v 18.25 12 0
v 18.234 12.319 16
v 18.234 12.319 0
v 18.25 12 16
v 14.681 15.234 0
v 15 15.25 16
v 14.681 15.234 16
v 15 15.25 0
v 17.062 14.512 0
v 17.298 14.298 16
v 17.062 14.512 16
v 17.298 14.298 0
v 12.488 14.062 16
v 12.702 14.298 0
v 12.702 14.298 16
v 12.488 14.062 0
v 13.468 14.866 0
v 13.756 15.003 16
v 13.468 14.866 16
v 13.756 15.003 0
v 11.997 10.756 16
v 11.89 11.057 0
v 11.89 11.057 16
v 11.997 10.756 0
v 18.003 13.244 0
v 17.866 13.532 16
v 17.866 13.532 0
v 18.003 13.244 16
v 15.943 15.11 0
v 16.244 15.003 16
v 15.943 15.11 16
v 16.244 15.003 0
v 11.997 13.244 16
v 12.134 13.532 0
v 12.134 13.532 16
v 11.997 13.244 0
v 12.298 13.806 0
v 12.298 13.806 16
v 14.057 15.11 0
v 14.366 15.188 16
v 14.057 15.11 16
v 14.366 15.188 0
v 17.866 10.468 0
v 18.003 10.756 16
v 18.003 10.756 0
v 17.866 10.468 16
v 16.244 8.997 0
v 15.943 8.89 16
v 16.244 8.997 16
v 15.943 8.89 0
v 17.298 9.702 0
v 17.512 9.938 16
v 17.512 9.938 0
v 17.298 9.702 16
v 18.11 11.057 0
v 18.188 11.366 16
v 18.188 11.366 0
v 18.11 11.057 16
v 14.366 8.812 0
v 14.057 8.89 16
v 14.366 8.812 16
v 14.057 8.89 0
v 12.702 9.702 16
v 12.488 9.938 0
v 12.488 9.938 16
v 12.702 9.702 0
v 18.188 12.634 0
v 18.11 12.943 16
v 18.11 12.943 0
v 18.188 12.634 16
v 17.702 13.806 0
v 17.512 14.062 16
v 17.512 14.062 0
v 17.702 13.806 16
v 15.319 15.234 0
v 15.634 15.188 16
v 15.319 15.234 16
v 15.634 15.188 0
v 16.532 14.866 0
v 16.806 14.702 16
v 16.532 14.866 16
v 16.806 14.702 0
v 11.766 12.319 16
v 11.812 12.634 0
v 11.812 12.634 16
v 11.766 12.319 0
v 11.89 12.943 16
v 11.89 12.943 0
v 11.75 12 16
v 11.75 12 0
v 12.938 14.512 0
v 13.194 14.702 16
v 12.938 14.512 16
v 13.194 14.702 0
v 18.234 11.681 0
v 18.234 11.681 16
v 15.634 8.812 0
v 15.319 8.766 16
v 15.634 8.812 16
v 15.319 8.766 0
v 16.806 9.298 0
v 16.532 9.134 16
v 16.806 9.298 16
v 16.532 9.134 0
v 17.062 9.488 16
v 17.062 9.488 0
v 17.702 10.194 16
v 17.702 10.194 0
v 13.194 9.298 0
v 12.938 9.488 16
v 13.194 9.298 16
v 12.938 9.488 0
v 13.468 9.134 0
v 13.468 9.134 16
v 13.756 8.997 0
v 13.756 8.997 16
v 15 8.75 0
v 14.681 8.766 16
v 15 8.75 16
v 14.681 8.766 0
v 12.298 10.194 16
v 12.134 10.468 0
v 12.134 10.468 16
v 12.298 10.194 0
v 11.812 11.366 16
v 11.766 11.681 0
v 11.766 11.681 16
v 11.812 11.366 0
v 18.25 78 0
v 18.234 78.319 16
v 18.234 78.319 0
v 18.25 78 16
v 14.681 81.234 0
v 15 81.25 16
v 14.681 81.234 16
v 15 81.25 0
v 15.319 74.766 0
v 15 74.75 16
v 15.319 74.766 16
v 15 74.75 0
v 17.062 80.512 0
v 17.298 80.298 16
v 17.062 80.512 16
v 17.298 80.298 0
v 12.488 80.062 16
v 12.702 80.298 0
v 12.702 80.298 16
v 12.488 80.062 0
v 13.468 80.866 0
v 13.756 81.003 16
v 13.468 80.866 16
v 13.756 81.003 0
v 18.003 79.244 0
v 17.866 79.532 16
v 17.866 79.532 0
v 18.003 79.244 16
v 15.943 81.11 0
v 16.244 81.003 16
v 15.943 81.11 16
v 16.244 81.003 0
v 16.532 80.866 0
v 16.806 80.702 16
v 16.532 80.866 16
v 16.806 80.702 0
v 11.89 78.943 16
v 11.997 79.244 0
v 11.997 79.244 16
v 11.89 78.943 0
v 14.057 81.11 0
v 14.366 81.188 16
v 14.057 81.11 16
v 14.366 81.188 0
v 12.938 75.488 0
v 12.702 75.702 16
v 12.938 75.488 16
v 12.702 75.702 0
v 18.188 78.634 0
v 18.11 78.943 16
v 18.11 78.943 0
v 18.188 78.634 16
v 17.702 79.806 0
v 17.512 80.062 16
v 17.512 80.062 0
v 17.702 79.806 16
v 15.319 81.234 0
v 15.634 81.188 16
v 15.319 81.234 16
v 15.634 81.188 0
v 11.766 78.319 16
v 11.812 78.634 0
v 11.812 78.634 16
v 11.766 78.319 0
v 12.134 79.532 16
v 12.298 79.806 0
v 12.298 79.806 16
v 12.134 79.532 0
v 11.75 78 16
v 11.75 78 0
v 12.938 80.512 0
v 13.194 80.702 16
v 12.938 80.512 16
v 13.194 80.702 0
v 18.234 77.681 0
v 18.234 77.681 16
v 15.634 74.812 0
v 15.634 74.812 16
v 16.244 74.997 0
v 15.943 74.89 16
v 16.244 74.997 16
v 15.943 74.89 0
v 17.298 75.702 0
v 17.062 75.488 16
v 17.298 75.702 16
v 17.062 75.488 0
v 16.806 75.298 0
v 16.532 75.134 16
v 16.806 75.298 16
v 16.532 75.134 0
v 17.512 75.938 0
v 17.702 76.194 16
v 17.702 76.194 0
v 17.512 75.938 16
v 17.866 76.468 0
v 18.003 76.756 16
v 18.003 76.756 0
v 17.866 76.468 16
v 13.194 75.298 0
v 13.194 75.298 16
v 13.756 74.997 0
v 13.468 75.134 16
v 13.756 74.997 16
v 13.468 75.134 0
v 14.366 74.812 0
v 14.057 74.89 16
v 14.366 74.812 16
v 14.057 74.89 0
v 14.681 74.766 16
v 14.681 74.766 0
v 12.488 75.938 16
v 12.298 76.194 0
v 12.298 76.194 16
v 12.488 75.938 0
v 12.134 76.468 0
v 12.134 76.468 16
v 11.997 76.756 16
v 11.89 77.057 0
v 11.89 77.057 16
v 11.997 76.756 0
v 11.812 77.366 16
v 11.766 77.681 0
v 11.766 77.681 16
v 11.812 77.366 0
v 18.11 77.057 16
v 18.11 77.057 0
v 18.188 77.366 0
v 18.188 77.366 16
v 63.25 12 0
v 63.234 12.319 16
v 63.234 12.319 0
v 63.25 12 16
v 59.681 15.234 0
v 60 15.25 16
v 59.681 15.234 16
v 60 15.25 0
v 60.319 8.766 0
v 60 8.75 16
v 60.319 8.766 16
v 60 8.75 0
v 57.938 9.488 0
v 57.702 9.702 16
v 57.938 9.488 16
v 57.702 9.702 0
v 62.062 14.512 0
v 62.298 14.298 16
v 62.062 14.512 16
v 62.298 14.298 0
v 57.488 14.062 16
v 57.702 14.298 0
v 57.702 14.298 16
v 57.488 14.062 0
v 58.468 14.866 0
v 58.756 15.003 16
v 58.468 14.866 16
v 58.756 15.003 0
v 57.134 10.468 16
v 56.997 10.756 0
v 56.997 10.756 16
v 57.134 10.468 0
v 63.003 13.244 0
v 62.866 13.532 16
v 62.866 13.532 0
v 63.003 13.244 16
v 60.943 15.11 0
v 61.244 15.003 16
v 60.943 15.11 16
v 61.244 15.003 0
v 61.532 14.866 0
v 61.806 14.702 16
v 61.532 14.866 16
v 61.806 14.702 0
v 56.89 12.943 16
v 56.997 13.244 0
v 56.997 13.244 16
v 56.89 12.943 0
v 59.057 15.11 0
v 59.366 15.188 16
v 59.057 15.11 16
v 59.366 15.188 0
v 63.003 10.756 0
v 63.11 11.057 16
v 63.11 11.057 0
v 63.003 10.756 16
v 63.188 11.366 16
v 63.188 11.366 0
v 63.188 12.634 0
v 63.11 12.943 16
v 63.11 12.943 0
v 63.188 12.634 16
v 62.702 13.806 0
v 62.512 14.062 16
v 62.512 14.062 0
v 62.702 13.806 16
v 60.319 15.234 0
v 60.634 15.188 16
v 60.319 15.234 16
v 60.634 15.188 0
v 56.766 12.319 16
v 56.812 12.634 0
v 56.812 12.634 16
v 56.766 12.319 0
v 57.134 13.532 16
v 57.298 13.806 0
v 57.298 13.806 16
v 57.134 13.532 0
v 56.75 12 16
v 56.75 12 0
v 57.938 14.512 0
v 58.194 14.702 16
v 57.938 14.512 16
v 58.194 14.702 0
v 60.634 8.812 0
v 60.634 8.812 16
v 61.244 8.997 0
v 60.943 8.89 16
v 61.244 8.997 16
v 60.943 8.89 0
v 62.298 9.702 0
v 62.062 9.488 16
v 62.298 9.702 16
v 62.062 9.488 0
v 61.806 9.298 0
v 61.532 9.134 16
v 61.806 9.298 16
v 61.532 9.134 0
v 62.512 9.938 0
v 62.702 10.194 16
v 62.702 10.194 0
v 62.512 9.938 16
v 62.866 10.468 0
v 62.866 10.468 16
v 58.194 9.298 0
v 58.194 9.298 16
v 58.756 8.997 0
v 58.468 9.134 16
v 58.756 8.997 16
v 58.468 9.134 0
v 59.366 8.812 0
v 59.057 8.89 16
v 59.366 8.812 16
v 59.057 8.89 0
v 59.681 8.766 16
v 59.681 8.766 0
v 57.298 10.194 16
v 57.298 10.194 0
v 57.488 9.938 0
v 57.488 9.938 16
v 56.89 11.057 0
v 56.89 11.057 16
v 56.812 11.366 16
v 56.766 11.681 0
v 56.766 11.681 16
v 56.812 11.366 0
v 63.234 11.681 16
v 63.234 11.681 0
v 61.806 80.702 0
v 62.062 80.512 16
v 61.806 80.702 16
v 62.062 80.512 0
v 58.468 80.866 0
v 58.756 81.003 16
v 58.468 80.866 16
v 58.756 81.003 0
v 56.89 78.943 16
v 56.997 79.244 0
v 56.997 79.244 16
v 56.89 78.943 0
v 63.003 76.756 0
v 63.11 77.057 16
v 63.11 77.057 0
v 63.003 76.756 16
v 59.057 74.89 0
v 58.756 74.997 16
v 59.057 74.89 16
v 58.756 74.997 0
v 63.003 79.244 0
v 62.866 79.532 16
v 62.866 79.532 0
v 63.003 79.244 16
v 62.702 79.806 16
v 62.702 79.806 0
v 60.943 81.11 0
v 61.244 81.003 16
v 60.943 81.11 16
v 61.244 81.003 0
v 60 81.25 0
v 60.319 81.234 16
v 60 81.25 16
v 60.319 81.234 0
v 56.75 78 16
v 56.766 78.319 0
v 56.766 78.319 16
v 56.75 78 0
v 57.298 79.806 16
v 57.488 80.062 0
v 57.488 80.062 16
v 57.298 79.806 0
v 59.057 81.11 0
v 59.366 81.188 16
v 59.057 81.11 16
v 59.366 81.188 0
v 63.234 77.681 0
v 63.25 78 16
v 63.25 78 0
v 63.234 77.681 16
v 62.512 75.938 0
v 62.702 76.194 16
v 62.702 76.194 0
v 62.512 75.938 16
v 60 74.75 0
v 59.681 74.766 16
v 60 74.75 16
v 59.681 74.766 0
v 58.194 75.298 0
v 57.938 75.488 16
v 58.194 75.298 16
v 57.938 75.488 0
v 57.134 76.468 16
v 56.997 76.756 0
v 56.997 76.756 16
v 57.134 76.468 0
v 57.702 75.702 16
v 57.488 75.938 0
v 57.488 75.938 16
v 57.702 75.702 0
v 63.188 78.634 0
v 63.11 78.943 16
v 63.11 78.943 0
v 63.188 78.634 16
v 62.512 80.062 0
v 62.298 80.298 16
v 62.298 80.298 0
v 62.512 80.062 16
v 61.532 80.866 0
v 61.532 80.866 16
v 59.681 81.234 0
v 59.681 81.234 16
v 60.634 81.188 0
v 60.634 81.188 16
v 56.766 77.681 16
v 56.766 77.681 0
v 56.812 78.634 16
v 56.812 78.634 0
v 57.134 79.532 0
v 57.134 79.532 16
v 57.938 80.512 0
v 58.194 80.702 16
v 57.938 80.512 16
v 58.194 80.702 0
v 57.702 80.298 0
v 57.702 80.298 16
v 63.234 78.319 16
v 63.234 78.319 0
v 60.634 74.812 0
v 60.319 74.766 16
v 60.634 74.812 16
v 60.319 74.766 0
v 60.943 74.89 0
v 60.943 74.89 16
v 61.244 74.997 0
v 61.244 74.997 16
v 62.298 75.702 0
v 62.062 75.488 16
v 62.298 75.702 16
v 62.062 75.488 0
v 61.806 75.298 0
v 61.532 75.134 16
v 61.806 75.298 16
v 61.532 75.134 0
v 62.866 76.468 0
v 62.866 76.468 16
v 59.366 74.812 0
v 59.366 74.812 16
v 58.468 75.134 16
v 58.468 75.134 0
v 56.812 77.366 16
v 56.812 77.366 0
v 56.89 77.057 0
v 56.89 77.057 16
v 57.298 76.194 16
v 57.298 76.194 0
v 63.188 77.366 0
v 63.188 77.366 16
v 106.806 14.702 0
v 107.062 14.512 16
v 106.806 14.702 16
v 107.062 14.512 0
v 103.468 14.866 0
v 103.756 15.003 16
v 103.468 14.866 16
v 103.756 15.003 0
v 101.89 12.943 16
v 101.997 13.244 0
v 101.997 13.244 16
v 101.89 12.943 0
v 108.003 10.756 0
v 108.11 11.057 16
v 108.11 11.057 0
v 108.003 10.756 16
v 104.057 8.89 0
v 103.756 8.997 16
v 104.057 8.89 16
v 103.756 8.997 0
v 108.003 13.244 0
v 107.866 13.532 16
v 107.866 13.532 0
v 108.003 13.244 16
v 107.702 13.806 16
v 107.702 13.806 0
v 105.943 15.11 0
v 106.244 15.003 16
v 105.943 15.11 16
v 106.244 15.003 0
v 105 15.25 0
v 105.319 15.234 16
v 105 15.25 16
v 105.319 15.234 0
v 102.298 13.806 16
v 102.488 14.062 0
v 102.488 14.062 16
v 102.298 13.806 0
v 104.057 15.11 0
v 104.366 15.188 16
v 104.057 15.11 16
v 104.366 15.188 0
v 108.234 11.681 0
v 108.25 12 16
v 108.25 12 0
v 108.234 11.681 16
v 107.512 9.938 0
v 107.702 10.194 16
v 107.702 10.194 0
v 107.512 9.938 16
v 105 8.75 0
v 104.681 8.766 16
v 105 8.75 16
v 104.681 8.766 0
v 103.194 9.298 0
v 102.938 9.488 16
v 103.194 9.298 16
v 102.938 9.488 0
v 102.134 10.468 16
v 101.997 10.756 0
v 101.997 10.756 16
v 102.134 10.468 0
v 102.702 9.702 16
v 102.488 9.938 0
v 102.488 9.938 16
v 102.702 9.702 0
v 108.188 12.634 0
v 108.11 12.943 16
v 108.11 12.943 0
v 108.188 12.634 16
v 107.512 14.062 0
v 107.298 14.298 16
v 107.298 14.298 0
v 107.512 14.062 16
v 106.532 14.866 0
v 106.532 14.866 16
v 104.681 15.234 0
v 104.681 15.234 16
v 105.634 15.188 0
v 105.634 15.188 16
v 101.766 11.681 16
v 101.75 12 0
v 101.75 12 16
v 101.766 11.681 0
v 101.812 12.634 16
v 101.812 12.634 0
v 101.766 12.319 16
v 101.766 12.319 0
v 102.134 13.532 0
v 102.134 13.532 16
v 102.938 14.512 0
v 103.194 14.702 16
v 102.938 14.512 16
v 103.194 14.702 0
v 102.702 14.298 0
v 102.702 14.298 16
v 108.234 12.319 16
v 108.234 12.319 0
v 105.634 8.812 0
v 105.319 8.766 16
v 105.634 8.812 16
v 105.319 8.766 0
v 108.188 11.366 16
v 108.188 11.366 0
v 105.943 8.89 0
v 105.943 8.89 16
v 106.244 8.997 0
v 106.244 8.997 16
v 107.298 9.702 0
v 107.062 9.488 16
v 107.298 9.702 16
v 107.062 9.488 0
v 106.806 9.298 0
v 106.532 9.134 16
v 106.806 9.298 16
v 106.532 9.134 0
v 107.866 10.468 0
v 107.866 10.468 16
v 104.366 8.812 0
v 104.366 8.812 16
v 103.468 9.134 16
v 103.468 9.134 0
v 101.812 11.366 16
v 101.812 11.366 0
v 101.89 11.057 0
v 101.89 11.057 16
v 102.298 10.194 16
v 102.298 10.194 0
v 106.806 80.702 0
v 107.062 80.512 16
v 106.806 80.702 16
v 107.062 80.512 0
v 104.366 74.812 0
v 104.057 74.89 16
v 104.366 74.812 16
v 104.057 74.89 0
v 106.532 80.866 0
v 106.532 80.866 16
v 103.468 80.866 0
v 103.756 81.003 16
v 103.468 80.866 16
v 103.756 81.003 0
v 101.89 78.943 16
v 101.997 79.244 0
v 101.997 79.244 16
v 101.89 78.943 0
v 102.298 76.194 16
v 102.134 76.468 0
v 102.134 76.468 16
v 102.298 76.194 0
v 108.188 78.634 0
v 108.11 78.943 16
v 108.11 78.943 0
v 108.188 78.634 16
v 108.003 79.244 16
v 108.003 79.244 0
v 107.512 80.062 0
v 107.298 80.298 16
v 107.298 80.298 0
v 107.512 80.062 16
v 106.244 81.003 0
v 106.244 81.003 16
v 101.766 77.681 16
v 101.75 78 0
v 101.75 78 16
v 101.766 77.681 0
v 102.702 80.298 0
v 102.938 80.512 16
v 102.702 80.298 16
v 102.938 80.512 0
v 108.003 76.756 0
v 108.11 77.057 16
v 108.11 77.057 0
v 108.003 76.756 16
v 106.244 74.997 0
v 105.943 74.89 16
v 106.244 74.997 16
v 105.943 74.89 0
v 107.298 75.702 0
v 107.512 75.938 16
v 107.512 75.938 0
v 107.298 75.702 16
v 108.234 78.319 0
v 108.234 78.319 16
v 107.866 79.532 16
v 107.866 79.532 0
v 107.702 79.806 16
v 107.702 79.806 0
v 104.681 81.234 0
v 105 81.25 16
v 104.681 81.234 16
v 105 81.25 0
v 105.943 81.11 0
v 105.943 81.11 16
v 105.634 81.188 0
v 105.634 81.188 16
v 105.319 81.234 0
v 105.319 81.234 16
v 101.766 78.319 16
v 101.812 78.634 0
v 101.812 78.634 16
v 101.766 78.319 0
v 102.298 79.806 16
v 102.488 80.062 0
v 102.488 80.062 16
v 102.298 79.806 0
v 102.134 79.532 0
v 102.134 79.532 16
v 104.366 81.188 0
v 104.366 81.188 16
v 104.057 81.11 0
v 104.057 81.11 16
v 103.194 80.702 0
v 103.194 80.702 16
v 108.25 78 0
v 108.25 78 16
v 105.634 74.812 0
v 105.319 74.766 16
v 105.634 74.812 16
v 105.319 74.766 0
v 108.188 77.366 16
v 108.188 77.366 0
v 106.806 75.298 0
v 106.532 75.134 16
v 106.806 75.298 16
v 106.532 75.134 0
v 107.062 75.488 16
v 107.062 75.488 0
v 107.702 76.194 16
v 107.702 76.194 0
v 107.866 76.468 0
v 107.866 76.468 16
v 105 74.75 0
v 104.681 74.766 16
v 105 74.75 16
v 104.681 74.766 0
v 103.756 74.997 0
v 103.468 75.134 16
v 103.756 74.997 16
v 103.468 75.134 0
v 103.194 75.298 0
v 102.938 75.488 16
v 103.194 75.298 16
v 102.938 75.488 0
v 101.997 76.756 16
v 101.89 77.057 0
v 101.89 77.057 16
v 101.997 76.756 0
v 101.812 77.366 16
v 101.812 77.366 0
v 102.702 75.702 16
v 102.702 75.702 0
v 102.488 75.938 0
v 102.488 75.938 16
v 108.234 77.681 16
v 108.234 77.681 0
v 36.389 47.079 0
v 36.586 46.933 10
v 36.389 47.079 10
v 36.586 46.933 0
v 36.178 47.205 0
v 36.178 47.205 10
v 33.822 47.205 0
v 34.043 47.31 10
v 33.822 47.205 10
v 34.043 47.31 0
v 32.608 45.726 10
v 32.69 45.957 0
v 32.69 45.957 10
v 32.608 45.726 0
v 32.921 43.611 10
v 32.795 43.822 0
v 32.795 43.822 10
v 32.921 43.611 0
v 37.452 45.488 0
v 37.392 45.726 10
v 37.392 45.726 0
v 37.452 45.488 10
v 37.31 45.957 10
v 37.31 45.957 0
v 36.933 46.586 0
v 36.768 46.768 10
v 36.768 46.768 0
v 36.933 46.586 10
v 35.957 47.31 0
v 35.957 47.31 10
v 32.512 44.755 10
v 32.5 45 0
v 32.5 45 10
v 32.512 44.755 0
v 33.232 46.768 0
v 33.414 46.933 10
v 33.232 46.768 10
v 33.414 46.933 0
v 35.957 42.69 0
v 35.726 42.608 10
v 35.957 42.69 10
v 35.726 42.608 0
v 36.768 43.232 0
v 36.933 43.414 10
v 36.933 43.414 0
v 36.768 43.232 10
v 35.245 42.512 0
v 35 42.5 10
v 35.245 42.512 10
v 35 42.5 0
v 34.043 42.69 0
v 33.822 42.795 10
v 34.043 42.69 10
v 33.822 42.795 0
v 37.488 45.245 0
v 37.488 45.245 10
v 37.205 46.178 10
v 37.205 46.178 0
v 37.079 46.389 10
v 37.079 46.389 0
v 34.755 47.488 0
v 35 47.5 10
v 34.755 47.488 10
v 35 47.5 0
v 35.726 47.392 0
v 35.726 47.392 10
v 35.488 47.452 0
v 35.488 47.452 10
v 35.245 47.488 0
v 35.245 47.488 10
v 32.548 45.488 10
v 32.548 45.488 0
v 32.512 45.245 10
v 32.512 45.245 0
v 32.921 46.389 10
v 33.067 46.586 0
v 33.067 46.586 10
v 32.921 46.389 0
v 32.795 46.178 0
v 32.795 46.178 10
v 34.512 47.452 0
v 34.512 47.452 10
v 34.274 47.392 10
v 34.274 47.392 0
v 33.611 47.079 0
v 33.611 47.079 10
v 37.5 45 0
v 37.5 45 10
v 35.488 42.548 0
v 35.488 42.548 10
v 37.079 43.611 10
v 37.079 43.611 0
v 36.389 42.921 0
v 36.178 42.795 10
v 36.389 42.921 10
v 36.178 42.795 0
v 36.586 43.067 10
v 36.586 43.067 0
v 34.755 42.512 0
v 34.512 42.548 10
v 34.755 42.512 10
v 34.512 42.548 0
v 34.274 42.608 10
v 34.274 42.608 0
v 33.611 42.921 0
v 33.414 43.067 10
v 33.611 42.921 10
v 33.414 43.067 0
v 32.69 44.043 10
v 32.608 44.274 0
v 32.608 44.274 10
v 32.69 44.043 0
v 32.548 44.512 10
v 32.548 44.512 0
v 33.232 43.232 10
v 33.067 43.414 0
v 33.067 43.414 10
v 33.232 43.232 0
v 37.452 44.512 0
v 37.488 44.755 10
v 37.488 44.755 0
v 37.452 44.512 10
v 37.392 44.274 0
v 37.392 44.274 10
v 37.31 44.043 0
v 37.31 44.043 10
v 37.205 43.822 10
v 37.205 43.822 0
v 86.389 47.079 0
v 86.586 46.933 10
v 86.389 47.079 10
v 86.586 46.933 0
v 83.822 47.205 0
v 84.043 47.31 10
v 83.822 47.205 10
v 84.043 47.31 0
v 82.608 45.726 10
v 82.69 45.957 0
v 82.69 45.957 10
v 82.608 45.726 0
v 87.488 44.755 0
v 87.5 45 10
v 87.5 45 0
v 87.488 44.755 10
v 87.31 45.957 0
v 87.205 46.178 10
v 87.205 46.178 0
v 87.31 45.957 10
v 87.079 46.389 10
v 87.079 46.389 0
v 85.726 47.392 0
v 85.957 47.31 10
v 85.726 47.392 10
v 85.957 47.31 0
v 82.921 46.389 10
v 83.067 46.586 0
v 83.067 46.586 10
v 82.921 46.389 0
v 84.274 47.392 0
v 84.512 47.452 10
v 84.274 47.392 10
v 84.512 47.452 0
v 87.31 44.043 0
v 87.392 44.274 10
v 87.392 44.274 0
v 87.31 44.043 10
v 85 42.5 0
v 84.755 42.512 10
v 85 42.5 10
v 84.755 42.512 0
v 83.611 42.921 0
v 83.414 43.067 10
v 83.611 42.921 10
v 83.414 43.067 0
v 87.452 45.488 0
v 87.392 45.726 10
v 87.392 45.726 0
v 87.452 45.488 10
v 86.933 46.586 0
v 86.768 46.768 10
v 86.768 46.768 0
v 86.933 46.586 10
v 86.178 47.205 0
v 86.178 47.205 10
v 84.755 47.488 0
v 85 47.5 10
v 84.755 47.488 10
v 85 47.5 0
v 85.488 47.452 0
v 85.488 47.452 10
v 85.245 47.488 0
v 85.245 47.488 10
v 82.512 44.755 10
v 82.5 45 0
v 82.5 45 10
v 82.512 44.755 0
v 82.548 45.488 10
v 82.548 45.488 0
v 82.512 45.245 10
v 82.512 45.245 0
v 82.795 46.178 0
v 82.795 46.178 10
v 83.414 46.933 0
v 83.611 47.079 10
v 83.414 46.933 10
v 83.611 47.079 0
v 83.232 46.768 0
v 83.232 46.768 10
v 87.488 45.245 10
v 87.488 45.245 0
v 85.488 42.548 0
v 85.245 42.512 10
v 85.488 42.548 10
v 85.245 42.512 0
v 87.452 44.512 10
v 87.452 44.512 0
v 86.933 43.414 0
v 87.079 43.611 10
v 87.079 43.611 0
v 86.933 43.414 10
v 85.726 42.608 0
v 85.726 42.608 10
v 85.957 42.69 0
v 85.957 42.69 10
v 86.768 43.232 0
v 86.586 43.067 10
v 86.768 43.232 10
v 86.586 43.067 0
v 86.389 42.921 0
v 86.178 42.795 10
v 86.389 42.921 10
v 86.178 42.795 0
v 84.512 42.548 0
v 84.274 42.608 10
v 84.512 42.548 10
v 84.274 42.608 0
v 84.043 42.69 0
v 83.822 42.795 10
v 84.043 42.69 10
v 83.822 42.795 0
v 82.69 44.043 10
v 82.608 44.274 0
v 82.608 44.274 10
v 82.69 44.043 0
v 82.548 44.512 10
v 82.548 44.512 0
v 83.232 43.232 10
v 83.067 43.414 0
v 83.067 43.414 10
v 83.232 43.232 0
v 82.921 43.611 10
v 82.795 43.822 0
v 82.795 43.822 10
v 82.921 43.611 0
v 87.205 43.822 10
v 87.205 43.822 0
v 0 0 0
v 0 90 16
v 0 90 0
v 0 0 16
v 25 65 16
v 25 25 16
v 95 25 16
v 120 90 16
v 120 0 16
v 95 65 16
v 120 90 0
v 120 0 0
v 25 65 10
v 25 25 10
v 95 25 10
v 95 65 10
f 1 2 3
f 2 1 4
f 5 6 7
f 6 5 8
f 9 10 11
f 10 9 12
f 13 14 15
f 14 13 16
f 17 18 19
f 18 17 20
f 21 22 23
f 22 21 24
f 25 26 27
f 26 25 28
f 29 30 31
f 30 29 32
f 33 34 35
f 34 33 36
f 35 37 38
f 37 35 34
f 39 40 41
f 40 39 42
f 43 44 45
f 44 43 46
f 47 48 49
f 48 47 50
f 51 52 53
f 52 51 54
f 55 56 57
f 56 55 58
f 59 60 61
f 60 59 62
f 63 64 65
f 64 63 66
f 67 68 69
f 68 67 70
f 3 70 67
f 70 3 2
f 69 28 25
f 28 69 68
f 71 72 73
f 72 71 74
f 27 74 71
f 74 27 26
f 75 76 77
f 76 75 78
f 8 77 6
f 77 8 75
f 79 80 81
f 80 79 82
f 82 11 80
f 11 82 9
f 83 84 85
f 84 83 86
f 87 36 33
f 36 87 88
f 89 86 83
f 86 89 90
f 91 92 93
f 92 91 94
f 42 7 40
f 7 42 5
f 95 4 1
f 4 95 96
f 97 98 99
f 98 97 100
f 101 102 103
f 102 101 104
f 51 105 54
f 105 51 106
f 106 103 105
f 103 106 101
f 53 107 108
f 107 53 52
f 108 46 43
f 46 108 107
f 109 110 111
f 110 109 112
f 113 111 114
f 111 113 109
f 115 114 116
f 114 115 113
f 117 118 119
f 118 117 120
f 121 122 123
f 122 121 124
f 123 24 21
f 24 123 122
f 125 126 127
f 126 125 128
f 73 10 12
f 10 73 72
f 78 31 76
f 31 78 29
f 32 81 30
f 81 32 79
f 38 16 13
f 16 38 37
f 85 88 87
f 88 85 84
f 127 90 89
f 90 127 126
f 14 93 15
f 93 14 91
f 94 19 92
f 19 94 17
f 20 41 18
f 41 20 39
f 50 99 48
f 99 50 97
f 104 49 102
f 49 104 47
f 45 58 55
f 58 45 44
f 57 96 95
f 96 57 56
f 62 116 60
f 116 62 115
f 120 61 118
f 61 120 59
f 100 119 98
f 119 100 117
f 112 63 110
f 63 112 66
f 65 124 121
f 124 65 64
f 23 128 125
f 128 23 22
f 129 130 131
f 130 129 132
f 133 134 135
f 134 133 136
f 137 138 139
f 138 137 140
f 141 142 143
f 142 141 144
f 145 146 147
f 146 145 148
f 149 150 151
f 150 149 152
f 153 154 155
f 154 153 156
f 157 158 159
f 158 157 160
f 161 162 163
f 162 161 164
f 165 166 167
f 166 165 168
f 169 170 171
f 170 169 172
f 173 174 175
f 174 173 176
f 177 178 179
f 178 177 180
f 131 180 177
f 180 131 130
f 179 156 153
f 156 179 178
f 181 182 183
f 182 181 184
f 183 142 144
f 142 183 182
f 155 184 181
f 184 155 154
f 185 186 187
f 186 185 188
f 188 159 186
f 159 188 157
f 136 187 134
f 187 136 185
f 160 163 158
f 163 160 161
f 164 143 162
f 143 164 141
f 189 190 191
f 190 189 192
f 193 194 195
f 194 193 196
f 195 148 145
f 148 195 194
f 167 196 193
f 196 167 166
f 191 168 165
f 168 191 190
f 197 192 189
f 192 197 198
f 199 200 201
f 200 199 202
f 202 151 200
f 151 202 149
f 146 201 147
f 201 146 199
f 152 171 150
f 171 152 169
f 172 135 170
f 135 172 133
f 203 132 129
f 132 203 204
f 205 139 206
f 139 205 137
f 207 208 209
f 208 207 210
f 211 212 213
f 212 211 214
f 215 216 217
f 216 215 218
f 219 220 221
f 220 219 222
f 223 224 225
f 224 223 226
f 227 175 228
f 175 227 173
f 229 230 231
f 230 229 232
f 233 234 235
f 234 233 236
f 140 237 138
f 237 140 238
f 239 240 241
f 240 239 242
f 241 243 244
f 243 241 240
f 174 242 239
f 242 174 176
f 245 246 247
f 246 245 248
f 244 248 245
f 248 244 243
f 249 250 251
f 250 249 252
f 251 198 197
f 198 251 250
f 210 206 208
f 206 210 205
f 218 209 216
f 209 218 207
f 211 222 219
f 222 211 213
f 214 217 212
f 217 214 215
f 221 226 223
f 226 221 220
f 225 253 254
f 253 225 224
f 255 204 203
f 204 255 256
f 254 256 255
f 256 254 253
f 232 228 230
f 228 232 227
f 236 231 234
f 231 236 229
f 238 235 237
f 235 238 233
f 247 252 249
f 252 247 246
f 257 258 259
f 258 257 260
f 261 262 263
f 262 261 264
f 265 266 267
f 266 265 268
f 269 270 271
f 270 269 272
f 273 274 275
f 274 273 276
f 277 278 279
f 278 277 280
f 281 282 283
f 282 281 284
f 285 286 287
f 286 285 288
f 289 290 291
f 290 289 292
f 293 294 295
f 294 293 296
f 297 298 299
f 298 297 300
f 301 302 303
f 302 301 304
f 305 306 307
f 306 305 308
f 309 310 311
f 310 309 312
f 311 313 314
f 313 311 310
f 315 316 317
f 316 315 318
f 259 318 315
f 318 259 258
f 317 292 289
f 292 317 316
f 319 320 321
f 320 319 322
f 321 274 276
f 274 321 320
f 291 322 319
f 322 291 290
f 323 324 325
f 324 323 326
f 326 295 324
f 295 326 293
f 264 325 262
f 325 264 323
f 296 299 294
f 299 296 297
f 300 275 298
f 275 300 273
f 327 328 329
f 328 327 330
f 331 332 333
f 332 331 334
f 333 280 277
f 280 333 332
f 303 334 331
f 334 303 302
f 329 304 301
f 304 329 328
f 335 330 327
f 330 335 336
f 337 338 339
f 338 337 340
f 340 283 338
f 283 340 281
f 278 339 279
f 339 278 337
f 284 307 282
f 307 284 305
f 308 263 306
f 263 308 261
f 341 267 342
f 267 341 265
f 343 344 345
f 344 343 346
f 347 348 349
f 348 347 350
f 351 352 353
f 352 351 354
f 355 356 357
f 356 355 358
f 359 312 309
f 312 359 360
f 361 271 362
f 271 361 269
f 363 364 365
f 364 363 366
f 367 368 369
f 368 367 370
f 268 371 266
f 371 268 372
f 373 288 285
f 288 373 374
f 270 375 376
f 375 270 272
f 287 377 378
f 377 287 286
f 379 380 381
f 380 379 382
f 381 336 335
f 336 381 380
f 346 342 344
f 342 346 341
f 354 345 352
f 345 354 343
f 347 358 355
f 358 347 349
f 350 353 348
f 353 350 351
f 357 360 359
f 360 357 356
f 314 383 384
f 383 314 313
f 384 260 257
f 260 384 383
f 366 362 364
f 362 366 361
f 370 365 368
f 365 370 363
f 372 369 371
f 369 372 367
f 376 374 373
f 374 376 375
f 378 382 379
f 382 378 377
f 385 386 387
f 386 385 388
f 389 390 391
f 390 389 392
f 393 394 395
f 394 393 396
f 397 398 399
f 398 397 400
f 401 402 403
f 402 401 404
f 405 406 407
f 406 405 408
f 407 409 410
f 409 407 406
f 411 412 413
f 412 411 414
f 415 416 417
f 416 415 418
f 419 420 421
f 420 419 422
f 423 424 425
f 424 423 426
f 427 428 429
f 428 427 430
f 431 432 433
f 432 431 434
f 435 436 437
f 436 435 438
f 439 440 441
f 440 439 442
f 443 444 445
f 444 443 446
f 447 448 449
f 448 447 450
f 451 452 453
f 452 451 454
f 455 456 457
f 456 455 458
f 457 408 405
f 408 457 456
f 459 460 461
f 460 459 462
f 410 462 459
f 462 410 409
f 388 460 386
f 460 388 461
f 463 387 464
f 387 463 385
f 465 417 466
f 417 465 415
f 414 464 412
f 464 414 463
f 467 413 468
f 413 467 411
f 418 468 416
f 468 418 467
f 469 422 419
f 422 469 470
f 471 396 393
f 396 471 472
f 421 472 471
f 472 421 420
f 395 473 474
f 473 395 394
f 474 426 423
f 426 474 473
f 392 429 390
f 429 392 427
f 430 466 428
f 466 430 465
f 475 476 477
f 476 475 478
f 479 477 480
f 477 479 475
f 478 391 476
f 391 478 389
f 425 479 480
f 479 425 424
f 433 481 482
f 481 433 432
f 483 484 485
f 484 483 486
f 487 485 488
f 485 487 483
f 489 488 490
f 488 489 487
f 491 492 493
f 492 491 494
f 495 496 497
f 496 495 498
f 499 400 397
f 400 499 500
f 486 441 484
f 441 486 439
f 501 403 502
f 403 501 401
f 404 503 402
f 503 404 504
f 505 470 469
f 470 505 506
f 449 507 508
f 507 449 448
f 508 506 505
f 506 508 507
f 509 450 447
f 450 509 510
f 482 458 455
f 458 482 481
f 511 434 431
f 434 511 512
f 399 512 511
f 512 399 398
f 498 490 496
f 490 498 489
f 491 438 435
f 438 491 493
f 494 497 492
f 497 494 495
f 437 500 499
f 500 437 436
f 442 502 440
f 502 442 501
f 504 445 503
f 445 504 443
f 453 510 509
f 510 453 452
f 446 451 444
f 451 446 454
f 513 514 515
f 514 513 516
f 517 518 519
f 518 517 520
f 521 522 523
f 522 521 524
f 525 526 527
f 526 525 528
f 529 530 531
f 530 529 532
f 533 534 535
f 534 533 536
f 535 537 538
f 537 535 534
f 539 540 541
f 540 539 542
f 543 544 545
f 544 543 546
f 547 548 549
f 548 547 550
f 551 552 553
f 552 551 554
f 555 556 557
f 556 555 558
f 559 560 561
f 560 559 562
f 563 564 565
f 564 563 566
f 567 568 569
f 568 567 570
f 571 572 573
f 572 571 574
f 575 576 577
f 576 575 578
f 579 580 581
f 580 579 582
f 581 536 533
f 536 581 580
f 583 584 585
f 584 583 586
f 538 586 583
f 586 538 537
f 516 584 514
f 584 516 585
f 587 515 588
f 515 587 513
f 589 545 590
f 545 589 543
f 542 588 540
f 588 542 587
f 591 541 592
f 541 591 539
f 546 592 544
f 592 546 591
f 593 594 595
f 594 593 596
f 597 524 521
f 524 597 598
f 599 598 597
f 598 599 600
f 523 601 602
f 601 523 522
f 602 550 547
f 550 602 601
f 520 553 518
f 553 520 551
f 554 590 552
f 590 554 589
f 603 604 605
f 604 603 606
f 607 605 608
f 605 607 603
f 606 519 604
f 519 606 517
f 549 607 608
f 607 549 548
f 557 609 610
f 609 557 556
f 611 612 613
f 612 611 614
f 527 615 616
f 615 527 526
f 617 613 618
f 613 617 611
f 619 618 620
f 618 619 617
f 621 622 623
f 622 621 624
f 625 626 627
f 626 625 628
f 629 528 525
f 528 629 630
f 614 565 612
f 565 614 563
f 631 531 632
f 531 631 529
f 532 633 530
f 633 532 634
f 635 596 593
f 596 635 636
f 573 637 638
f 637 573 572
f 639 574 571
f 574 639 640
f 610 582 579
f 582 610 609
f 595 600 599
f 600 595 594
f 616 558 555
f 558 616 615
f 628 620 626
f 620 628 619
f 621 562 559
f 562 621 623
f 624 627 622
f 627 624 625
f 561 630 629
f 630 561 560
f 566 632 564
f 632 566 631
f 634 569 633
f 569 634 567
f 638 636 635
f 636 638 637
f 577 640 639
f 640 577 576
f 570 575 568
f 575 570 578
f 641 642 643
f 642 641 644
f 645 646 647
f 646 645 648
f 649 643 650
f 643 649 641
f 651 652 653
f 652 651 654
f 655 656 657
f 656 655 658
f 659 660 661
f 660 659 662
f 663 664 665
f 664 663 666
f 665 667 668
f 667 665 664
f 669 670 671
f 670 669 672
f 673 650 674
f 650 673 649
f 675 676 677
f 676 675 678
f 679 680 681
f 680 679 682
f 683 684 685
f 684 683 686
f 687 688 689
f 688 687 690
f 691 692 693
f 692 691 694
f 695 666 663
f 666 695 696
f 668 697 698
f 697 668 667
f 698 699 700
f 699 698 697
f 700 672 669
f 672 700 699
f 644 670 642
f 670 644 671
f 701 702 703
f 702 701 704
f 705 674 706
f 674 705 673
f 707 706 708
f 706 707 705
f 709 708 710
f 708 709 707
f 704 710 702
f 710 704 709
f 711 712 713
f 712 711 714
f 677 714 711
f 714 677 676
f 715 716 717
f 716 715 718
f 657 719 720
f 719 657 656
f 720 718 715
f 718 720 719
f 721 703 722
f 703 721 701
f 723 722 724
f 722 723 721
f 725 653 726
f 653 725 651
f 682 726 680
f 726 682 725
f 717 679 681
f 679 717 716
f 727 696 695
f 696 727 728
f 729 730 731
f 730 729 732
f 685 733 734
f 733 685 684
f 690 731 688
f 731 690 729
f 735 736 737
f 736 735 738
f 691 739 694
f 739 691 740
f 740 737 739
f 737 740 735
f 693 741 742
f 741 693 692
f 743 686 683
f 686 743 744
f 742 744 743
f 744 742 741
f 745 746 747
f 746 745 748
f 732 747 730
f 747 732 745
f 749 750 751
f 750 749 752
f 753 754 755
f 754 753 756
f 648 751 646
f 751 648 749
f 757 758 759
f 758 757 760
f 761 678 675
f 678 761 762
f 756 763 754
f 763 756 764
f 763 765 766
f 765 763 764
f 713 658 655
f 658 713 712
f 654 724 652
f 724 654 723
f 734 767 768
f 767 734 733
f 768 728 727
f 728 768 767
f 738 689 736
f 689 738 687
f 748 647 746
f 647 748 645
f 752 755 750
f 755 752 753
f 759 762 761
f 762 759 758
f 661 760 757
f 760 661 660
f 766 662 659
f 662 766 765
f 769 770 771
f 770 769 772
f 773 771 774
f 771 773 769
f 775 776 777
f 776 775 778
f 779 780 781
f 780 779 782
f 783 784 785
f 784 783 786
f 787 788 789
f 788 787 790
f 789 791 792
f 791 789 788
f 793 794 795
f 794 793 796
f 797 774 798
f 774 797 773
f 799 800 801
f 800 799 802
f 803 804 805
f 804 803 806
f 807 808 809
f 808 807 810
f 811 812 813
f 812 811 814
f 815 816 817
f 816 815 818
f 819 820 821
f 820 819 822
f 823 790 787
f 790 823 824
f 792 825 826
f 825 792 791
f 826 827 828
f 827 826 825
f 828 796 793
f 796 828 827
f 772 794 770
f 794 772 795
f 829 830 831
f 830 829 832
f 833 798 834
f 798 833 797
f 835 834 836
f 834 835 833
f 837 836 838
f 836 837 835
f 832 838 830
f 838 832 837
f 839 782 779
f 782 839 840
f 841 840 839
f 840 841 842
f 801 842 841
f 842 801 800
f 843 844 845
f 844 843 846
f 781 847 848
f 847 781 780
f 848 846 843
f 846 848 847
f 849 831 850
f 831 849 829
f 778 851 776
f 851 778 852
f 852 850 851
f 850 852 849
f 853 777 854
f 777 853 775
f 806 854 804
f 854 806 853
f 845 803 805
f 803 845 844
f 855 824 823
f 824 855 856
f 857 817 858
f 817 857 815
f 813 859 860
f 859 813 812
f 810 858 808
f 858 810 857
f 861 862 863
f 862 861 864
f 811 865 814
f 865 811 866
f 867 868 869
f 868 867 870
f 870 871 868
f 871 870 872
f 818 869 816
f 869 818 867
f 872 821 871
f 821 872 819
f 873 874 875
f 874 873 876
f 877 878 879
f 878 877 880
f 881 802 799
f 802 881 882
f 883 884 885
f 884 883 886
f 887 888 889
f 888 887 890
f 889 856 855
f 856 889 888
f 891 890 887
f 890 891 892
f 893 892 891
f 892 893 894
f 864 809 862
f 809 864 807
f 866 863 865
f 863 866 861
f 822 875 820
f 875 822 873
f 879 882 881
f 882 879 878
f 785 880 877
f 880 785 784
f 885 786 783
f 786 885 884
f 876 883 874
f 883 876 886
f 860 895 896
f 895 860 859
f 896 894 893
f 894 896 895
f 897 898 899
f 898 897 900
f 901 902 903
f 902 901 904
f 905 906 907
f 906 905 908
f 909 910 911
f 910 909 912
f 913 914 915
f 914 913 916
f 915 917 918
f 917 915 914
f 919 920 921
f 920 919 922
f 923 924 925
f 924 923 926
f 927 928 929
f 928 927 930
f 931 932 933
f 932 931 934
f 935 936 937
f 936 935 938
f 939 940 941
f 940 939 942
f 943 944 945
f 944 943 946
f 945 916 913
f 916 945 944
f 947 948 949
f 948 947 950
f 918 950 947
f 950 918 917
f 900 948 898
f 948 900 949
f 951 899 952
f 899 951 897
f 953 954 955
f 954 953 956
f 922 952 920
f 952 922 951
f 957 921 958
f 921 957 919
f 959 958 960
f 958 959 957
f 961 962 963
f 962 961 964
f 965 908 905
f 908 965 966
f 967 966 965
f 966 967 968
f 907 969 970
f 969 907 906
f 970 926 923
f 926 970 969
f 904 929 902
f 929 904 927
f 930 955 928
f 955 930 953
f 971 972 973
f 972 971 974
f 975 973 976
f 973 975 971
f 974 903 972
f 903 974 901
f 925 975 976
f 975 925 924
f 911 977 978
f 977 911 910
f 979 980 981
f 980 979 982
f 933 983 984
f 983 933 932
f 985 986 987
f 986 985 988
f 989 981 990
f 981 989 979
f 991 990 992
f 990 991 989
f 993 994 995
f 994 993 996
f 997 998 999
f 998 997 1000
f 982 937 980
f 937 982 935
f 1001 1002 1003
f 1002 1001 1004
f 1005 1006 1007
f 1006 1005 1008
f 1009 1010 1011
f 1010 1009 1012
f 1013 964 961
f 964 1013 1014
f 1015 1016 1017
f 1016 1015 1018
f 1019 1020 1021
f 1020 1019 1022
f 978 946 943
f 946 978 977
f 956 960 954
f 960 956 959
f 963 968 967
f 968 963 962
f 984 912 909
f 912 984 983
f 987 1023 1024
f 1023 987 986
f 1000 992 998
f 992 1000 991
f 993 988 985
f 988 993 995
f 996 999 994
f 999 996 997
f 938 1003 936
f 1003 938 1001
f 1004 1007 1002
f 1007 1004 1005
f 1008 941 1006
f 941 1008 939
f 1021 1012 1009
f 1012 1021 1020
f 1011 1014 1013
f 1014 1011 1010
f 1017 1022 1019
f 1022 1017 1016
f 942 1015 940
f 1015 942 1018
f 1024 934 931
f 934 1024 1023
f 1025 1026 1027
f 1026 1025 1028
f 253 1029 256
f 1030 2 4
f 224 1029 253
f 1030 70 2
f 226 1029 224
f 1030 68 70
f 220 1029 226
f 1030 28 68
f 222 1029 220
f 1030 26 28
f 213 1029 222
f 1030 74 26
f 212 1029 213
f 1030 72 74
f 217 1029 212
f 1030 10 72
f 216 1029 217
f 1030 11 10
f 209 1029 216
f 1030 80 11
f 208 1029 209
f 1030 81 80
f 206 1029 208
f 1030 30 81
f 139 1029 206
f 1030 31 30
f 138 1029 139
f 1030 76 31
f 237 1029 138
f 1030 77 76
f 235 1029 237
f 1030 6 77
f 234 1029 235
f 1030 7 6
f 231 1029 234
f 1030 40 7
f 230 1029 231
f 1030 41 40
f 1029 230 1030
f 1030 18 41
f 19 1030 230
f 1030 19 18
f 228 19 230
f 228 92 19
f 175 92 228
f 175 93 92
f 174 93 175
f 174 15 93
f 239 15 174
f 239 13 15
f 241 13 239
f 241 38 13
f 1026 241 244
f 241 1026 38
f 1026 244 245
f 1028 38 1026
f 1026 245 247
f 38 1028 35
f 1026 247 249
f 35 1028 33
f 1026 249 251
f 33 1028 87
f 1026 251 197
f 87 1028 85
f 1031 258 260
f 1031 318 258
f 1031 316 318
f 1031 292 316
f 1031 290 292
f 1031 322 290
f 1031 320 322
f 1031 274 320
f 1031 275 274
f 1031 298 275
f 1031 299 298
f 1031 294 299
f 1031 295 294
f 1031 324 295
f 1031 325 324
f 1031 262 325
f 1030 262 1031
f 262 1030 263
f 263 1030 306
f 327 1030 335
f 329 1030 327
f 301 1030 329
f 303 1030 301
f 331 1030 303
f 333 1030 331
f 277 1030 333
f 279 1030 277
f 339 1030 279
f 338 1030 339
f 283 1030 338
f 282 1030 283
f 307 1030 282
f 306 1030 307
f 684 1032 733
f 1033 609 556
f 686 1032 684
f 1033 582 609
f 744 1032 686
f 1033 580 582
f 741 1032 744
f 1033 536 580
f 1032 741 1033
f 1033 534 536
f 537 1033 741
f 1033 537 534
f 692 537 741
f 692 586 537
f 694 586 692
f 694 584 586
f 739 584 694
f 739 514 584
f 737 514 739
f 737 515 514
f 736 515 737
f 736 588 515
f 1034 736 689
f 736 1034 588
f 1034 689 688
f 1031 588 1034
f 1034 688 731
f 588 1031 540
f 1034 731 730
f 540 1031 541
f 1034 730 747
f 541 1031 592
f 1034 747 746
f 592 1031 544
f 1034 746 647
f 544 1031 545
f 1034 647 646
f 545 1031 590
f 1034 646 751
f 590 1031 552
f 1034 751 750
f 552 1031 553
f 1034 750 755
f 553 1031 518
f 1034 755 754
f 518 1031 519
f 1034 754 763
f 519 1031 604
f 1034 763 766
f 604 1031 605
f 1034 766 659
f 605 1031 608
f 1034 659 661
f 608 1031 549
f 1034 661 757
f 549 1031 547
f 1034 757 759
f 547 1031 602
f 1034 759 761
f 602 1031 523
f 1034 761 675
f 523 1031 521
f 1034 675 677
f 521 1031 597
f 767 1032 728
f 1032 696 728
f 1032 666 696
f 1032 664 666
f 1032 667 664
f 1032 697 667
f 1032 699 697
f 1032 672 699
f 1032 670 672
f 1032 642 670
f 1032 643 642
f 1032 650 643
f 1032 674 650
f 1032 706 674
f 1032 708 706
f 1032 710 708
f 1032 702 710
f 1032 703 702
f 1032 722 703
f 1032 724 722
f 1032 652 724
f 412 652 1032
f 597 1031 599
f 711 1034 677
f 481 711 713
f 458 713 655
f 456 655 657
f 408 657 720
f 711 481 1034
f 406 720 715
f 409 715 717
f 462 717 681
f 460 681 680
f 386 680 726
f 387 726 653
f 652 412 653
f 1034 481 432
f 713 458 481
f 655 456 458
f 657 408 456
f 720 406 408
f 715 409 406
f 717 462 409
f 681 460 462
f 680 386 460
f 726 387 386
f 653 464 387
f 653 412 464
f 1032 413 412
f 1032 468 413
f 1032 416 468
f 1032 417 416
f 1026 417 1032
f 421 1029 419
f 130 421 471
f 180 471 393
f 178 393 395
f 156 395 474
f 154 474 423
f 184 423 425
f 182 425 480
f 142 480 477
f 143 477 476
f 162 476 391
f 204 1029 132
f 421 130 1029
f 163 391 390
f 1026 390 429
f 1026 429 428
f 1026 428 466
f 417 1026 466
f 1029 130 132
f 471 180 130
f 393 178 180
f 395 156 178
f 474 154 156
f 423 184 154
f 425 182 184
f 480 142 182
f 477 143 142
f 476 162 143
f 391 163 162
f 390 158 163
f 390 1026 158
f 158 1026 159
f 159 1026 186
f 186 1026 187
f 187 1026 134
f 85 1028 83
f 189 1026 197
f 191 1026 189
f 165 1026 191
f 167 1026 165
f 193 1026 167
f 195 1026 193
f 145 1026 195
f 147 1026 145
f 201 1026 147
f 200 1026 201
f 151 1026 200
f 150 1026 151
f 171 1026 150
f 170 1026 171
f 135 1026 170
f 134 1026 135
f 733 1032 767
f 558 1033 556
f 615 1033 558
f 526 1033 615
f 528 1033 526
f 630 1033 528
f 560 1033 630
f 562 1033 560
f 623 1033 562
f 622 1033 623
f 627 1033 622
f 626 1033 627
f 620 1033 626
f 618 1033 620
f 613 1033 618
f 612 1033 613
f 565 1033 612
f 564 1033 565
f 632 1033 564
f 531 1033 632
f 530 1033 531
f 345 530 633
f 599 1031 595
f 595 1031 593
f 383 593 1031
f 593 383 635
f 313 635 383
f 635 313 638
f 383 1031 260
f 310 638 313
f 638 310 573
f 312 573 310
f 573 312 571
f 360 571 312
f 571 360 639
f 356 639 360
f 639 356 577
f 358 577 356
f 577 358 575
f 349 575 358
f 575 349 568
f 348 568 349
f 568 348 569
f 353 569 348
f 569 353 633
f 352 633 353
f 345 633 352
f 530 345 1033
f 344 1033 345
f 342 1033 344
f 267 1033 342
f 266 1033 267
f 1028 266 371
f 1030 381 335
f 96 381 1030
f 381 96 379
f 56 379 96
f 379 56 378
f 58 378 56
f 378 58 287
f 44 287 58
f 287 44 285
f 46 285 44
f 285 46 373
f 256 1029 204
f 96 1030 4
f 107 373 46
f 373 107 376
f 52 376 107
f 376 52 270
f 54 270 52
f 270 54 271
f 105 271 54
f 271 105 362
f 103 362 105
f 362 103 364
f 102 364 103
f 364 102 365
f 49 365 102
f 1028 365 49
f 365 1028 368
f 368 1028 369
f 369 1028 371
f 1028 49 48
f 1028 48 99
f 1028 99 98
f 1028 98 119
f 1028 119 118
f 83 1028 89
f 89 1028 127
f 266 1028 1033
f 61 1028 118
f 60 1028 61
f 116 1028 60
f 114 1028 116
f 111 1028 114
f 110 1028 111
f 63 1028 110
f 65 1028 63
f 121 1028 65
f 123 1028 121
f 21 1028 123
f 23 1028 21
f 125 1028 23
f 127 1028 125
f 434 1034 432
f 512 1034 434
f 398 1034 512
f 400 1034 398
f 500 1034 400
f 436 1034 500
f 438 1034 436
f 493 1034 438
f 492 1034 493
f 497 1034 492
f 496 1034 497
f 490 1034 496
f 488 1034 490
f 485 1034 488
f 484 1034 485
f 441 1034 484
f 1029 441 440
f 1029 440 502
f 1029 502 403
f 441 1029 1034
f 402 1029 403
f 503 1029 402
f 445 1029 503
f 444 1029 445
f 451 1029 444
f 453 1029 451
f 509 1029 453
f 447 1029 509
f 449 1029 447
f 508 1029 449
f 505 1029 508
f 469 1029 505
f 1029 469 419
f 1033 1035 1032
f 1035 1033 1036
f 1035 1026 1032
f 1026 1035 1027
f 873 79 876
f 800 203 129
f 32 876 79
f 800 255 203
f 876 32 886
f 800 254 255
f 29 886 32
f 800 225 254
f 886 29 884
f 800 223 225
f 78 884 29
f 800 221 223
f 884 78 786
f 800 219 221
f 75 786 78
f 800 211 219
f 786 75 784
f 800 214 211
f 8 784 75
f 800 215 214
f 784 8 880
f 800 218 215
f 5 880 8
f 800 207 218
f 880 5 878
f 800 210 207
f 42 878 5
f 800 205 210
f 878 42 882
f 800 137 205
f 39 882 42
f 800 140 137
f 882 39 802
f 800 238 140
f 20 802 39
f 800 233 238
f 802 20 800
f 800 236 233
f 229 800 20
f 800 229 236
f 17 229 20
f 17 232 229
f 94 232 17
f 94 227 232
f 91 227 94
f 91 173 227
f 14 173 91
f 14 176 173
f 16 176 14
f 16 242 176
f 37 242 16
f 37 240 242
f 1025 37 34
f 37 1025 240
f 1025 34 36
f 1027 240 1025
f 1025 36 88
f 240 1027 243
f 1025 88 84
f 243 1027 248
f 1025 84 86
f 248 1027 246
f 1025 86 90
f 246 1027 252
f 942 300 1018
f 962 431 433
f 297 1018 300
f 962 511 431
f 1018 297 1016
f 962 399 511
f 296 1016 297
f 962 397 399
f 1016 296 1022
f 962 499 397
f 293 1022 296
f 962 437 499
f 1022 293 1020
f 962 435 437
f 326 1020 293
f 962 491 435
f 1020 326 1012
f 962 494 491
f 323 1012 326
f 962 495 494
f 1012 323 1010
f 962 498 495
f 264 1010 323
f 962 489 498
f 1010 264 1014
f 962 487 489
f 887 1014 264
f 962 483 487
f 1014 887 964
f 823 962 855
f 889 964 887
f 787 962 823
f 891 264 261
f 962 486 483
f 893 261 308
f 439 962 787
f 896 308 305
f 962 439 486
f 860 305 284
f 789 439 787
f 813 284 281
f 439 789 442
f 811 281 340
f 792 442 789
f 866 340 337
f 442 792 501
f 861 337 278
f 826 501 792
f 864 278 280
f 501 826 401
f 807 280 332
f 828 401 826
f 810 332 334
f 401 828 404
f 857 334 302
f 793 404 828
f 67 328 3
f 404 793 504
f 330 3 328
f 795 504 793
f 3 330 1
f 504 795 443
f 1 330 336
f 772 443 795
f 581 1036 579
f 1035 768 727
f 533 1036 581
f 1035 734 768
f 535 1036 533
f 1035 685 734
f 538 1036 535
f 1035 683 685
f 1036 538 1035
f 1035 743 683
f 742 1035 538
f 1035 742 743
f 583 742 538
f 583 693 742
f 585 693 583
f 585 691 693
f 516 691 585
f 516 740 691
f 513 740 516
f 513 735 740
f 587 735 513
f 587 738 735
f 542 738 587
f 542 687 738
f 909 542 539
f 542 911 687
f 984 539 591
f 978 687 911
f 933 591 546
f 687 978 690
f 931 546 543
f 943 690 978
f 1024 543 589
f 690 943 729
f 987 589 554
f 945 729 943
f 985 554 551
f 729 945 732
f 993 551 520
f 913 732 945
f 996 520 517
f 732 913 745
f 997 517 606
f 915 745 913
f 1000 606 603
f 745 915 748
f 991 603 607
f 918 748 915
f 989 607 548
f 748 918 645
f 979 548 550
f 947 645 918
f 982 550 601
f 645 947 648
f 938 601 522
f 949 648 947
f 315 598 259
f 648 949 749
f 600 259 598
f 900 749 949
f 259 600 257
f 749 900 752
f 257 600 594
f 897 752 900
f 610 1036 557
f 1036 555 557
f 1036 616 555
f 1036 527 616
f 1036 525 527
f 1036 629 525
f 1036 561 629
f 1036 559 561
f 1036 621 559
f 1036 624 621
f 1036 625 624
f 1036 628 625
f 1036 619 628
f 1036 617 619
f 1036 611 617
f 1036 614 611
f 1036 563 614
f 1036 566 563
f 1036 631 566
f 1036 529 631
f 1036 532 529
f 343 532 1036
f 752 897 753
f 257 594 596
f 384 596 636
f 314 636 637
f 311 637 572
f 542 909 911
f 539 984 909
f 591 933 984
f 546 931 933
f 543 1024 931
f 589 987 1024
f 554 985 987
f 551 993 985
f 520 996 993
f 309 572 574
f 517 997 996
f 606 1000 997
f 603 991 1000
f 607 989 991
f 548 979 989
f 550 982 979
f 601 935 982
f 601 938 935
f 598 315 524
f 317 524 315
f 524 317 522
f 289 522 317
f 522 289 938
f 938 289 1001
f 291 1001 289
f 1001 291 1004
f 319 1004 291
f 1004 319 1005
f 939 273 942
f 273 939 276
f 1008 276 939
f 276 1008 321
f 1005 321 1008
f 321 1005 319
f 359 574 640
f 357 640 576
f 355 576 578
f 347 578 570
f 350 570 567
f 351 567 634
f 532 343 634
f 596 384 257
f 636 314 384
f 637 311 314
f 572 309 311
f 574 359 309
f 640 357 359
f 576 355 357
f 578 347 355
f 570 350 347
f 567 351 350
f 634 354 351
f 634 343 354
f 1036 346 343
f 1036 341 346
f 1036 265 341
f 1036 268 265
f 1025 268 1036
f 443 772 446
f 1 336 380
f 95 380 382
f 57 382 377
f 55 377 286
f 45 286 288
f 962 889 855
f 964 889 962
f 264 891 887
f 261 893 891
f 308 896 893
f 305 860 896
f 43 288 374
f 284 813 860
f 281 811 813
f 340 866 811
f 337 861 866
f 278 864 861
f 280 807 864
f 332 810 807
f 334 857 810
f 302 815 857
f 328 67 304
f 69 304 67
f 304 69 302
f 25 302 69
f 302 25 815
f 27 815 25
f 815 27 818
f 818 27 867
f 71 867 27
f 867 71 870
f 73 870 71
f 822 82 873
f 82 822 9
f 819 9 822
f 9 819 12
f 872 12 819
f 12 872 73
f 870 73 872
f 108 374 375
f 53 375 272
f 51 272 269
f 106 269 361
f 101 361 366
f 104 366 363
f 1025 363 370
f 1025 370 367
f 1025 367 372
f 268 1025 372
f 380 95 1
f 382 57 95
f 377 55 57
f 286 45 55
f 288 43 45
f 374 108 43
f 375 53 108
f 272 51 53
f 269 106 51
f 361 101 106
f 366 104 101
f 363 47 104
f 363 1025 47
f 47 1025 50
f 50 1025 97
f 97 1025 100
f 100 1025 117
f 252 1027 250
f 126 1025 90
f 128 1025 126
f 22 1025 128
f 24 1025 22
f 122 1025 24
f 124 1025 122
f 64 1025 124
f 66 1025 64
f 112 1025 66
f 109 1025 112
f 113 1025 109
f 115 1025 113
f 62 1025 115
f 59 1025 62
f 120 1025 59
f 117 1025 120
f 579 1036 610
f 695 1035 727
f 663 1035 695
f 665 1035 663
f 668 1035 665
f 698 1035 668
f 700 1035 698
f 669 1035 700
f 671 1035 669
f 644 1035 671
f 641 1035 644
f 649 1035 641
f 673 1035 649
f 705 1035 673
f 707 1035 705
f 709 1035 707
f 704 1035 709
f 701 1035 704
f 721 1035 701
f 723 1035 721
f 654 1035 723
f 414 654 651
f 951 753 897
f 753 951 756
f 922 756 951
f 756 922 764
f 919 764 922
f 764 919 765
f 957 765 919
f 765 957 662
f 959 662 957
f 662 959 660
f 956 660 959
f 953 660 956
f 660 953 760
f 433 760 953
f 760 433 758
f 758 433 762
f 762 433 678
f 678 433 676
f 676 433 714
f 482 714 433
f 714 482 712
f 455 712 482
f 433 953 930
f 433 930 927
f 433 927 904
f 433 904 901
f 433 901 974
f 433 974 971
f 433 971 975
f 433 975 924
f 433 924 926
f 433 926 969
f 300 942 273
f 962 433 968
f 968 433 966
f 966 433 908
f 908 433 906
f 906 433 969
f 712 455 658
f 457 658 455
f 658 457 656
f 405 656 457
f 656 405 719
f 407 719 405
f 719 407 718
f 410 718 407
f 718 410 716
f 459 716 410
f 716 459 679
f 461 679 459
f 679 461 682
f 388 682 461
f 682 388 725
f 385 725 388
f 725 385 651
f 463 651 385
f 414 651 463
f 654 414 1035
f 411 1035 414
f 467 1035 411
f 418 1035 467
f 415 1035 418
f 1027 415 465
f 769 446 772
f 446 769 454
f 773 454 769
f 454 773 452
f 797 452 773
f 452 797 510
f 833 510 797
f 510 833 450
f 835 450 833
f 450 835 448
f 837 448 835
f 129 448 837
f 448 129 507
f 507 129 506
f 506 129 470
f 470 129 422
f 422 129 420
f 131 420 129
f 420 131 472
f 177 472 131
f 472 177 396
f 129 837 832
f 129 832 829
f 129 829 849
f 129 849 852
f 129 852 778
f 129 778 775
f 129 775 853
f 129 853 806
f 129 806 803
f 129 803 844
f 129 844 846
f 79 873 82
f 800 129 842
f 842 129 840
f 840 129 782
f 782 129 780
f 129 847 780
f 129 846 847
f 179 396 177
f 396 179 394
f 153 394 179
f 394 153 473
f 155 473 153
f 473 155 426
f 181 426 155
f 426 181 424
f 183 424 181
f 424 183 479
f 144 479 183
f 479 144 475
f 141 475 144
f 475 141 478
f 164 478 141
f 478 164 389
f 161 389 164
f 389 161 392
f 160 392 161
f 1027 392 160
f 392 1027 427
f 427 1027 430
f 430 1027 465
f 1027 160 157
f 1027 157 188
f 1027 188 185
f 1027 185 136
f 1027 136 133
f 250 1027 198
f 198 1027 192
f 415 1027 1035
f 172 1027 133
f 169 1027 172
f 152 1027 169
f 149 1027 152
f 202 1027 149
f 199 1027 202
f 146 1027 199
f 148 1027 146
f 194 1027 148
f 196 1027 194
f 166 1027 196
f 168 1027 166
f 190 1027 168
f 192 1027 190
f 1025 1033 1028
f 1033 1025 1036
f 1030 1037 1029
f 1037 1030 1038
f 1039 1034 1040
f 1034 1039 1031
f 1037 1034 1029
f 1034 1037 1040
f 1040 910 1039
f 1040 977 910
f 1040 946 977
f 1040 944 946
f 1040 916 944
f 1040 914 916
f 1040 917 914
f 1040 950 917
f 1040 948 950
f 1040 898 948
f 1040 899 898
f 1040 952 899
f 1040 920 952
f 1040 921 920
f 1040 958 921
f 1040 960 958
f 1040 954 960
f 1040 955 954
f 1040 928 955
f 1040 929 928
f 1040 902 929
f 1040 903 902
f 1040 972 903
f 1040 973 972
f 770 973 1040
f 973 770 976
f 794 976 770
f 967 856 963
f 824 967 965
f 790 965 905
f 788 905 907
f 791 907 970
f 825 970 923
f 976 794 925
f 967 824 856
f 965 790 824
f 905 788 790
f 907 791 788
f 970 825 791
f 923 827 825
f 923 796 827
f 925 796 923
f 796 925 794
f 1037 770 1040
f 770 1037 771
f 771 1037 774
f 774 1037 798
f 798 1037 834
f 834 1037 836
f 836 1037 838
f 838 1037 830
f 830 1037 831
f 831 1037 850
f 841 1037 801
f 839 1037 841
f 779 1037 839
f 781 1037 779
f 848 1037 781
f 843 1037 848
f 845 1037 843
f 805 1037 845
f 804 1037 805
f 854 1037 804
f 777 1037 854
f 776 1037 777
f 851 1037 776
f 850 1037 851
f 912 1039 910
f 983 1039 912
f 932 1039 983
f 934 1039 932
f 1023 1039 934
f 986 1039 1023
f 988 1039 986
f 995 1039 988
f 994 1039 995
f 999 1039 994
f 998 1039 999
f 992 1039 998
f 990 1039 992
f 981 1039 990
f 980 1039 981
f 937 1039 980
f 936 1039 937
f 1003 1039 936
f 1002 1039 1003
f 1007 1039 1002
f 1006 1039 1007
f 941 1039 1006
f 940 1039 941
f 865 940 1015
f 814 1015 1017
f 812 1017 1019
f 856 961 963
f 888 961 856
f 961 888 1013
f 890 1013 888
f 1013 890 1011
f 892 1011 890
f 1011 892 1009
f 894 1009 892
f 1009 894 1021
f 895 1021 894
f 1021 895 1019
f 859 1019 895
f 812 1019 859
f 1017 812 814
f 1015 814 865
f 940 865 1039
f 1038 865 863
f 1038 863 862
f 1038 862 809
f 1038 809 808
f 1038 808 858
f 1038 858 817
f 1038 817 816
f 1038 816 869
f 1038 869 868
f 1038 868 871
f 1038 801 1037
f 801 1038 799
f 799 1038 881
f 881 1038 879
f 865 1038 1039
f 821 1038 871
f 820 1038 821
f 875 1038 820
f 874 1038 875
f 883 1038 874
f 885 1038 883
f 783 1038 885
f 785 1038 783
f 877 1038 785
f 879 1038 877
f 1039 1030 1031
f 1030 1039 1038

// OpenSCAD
// Original MechIntel educational model. CC0-1.0. Units: mm.
// Not a standardized or load-rated component.
$fn=96;
length=120; width=90; thickness=16; pocket_length=70; pocket_width=40; pocket_depth=6;
$fn=64;
difference(){
 cube([length,width,thickness]);
 translate([(length-pocket_length)/2,(width-pocket_width)/2,thickness-pocket_depth]) cube([pocket_length,pocket_width,pocket_depth+1]);
 for(x=[15,60,105]) for(y=[12,78]) translate([x,y,-1]) cylinder(d=6.5,h=thickness+2);
 for(x=[35,85]) translate([x,width/2,-1]) cylinder(d=5,h=thickness+2);
}
